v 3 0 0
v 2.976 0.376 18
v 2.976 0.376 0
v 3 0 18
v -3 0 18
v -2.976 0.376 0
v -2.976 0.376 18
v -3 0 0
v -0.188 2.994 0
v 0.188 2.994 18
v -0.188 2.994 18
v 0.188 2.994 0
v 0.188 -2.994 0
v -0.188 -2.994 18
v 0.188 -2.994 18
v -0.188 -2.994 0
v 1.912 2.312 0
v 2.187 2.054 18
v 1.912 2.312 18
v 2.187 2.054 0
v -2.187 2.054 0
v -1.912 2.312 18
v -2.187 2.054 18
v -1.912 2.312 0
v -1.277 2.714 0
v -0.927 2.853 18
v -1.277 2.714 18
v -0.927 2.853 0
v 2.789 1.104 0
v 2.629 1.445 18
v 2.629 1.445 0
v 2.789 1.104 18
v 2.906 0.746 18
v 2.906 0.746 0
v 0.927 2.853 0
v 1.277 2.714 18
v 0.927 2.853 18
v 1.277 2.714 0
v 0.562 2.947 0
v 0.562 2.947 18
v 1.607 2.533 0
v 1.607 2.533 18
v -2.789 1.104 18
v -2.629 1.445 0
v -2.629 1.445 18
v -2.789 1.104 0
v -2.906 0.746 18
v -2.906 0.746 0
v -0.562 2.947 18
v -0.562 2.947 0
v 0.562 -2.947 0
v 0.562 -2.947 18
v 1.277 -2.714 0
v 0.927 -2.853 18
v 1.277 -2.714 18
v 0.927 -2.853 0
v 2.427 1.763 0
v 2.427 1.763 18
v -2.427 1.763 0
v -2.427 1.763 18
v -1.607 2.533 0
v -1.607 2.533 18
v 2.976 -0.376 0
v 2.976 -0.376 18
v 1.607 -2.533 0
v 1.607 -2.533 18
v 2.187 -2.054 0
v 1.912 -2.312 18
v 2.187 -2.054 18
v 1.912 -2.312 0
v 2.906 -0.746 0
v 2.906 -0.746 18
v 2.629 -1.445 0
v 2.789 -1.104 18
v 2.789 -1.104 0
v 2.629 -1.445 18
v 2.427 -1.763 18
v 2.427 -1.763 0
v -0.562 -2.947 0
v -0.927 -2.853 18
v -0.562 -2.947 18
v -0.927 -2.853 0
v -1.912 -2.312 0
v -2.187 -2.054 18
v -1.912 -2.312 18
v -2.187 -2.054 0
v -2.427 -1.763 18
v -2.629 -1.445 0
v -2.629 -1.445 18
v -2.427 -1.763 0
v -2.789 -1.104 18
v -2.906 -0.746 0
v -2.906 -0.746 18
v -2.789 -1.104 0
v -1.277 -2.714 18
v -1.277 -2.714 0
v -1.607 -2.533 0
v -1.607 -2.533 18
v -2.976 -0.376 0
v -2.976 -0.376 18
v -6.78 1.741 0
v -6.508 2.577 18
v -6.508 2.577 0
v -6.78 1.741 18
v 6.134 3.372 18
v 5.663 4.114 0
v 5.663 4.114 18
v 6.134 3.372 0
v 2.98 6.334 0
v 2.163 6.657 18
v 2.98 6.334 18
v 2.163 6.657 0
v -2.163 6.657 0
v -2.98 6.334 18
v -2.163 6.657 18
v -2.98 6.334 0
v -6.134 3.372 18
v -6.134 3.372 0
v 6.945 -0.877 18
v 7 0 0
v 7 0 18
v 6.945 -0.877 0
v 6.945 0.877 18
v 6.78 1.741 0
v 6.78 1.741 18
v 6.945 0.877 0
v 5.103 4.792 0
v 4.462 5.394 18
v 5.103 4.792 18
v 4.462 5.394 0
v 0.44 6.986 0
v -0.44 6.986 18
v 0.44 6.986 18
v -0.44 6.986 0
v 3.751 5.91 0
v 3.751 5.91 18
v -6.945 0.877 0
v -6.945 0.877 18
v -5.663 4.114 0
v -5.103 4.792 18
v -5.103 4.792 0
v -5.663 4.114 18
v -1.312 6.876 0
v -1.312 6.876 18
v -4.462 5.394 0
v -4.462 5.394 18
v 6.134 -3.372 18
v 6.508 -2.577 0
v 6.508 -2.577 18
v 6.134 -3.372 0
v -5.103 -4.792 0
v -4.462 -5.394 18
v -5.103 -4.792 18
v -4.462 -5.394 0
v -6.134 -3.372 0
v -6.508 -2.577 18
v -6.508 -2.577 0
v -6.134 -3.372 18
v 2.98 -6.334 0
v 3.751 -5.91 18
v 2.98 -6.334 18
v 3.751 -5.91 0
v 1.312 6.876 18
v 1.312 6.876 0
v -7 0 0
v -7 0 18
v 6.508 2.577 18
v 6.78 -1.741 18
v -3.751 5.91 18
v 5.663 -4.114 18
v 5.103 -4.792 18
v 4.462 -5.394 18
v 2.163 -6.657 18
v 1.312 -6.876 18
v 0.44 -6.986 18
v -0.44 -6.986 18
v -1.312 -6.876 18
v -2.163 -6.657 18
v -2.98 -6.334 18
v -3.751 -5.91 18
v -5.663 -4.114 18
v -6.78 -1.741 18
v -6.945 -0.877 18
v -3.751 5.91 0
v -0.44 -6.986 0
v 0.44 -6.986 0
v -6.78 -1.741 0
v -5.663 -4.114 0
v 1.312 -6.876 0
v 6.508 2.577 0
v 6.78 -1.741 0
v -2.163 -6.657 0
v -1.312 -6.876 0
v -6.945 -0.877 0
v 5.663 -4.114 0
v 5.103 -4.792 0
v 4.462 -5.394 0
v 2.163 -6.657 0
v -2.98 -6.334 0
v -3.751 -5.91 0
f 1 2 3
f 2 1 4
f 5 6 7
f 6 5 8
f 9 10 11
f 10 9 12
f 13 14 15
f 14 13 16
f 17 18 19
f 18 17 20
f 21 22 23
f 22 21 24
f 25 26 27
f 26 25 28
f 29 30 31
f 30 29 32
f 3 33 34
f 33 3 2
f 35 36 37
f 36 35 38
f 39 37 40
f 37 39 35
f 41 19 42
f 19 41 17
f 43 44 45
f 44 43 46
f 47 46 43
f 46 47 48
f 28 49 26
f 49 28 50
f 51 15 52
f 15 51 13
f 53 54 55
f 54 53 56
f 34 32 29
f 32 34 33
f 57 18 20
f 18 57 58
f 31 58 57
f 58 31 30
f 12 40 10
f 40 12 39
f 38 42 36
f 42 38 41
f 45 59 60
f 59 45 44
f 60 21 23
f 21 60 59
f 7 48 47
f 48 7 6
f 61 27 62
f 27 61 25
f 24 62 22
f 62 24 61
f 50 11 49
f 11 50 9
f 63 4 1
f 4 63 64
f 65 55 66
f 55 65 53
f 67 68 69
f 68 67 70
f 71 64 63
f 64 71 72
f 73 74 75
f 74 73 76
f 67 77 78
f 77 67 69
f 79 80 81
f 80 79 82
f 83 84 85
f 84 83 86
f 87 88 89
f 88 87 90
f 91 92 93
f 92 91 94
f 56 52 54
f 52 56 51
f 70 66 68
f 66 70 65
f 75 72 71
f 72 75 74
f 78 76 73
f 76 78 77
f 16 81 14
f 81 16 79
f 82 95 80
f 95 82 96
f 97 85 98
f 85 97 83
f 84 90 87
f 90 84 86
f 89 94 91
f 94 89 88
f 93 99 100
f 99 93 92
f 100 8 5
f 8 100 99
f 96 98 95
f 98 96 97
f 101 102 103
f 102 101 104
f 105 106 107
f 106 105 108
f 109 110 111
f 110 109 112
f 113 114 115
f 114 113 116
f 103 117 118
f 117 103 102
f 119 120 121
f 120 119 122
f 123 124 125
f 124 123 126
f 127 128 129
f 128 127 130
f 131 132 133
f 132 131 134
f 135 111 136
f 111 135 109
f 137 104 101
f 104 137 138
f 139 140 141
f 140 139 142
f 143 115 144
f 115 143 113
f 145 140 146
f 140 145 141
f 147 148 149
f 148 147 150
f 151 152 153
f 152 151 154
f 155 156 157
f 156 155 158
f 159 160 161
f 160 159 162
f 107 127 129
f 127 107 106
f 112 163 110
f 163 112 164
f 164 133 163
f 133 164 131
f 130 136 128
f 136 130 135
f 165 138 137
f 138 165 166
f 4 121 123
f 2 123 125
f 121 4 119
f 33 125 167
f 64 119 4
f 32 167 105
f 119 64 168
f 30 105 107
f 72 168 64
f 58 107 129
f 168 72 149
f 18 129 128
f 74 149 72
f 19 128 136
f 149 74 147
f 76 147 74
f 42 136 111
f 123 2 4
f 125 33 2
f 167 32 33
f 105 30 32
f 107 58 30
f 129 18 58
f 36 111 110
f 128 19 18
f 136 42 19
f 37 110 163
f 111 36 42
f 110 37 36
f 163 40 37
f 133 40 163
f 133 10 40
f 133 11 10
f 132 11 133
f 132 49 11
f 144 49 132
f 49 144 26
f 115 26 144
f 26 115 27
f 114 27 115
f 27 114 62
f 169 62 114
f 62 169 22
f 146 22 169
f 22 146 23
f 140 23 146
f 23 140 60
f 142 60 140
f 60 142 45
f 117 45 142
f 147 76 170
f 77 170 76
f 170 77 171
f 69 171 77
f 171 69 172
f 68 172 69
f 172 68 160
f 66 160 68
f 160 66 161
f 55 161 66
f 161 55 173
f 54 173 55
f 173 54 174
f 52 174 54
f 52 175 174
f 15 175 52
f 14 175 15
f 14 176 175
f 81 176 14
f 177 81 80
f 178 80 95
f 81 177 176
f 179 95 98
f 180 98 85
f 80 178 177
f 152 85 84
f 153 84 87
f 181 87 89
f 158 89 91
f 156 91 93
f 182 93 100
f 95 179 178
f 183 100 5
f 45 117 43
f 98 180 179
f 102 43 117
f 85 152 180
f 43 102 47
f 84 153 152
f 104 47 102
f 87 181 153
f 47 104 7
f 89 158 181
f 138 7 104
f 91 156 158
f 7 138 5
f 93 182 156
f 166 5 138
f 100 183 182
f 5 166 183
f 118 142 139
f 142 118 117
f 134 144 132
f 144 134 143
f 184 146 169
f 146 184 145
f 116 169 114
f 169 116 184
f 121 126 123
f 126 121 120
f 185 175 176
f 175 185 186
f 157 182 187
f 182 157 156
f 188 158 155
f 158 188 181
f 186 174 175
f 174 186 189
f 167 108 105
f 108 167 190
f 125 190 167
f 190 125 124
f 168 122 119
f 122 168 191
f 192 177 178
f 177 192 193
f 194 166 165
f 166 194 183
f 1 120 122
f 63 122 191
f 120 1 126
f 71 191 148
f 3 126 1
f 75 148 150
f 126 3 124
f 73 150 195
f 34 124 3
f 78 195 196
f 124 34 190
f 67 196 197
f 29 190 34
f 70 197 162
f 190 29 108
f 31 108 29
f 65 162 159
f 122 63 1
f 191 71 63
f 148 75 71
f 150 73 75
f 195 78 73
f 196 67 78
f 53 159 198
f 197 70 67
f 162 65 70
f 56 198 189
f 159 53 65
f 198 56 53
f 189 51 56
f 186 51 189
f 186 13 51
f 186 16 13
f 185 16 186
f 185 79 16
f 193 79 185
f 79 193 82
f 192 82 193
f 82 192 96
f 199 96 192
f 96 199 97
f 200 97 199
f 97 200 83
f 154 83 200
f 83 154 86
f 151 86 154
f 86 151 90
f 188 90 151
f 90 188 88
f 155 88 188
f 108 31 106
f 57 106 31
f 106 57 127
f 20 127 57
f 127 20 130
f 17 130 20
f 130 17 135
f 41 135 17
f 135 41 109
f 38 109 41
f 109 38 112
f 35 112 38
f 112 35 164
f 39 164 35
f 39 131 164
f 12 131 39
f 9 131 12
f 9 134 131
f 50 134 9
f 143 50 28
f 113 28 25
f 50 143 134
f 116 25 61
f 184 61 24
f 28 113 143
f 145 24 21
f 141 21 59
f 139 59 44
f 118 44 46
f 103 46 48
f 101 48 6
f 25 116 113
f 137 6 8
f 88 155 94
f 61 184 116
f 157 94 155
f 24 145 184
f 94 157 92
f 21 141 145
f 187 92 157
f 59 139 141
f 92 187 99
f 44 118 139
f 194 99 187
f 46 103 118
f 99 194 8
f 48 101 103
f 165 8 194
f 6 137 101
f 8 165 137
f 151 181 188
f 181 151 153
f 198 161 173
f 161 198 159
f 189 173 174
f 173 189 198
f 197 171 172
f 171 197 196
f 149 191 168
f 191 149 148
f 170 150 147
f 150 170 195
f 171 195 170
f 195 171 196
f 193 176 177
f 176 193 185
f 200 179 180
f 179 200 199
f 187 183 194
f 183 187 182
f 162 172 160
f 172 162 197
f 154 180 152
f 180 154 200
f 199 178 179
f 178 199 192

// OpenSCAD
$fn = 50;


difference() {
	union() {
		translate(v = [0, 0, 0]) {
			rotate(a = [0, 0, 0]) {
				cylinder(h = 18, r = 7.0000000000);
			}
		}
	}
	union() {
		translate(v = [0.0000000000, 0.0000000000, 0]) {
			rotate(a = [0, 0, 0]) {
				translate(v = [0, 0, -50]) {
					rotate(a = [0, 0, 0]) {
						cylinder(h = 100, r = 3.0000000000);
					}
				}
			}
		}
		translate(v = [0.0000000000, 0.0000000000, 0]) {
			rotate(a = [0, 0, 0]) {
				translate(v = [0, 0, -50]) {
					rotate(a = [0, 0, 0]) {
						cylinder(h = 100, r = 1.5000000000);
					}
				}
			}
		}
	}
}
